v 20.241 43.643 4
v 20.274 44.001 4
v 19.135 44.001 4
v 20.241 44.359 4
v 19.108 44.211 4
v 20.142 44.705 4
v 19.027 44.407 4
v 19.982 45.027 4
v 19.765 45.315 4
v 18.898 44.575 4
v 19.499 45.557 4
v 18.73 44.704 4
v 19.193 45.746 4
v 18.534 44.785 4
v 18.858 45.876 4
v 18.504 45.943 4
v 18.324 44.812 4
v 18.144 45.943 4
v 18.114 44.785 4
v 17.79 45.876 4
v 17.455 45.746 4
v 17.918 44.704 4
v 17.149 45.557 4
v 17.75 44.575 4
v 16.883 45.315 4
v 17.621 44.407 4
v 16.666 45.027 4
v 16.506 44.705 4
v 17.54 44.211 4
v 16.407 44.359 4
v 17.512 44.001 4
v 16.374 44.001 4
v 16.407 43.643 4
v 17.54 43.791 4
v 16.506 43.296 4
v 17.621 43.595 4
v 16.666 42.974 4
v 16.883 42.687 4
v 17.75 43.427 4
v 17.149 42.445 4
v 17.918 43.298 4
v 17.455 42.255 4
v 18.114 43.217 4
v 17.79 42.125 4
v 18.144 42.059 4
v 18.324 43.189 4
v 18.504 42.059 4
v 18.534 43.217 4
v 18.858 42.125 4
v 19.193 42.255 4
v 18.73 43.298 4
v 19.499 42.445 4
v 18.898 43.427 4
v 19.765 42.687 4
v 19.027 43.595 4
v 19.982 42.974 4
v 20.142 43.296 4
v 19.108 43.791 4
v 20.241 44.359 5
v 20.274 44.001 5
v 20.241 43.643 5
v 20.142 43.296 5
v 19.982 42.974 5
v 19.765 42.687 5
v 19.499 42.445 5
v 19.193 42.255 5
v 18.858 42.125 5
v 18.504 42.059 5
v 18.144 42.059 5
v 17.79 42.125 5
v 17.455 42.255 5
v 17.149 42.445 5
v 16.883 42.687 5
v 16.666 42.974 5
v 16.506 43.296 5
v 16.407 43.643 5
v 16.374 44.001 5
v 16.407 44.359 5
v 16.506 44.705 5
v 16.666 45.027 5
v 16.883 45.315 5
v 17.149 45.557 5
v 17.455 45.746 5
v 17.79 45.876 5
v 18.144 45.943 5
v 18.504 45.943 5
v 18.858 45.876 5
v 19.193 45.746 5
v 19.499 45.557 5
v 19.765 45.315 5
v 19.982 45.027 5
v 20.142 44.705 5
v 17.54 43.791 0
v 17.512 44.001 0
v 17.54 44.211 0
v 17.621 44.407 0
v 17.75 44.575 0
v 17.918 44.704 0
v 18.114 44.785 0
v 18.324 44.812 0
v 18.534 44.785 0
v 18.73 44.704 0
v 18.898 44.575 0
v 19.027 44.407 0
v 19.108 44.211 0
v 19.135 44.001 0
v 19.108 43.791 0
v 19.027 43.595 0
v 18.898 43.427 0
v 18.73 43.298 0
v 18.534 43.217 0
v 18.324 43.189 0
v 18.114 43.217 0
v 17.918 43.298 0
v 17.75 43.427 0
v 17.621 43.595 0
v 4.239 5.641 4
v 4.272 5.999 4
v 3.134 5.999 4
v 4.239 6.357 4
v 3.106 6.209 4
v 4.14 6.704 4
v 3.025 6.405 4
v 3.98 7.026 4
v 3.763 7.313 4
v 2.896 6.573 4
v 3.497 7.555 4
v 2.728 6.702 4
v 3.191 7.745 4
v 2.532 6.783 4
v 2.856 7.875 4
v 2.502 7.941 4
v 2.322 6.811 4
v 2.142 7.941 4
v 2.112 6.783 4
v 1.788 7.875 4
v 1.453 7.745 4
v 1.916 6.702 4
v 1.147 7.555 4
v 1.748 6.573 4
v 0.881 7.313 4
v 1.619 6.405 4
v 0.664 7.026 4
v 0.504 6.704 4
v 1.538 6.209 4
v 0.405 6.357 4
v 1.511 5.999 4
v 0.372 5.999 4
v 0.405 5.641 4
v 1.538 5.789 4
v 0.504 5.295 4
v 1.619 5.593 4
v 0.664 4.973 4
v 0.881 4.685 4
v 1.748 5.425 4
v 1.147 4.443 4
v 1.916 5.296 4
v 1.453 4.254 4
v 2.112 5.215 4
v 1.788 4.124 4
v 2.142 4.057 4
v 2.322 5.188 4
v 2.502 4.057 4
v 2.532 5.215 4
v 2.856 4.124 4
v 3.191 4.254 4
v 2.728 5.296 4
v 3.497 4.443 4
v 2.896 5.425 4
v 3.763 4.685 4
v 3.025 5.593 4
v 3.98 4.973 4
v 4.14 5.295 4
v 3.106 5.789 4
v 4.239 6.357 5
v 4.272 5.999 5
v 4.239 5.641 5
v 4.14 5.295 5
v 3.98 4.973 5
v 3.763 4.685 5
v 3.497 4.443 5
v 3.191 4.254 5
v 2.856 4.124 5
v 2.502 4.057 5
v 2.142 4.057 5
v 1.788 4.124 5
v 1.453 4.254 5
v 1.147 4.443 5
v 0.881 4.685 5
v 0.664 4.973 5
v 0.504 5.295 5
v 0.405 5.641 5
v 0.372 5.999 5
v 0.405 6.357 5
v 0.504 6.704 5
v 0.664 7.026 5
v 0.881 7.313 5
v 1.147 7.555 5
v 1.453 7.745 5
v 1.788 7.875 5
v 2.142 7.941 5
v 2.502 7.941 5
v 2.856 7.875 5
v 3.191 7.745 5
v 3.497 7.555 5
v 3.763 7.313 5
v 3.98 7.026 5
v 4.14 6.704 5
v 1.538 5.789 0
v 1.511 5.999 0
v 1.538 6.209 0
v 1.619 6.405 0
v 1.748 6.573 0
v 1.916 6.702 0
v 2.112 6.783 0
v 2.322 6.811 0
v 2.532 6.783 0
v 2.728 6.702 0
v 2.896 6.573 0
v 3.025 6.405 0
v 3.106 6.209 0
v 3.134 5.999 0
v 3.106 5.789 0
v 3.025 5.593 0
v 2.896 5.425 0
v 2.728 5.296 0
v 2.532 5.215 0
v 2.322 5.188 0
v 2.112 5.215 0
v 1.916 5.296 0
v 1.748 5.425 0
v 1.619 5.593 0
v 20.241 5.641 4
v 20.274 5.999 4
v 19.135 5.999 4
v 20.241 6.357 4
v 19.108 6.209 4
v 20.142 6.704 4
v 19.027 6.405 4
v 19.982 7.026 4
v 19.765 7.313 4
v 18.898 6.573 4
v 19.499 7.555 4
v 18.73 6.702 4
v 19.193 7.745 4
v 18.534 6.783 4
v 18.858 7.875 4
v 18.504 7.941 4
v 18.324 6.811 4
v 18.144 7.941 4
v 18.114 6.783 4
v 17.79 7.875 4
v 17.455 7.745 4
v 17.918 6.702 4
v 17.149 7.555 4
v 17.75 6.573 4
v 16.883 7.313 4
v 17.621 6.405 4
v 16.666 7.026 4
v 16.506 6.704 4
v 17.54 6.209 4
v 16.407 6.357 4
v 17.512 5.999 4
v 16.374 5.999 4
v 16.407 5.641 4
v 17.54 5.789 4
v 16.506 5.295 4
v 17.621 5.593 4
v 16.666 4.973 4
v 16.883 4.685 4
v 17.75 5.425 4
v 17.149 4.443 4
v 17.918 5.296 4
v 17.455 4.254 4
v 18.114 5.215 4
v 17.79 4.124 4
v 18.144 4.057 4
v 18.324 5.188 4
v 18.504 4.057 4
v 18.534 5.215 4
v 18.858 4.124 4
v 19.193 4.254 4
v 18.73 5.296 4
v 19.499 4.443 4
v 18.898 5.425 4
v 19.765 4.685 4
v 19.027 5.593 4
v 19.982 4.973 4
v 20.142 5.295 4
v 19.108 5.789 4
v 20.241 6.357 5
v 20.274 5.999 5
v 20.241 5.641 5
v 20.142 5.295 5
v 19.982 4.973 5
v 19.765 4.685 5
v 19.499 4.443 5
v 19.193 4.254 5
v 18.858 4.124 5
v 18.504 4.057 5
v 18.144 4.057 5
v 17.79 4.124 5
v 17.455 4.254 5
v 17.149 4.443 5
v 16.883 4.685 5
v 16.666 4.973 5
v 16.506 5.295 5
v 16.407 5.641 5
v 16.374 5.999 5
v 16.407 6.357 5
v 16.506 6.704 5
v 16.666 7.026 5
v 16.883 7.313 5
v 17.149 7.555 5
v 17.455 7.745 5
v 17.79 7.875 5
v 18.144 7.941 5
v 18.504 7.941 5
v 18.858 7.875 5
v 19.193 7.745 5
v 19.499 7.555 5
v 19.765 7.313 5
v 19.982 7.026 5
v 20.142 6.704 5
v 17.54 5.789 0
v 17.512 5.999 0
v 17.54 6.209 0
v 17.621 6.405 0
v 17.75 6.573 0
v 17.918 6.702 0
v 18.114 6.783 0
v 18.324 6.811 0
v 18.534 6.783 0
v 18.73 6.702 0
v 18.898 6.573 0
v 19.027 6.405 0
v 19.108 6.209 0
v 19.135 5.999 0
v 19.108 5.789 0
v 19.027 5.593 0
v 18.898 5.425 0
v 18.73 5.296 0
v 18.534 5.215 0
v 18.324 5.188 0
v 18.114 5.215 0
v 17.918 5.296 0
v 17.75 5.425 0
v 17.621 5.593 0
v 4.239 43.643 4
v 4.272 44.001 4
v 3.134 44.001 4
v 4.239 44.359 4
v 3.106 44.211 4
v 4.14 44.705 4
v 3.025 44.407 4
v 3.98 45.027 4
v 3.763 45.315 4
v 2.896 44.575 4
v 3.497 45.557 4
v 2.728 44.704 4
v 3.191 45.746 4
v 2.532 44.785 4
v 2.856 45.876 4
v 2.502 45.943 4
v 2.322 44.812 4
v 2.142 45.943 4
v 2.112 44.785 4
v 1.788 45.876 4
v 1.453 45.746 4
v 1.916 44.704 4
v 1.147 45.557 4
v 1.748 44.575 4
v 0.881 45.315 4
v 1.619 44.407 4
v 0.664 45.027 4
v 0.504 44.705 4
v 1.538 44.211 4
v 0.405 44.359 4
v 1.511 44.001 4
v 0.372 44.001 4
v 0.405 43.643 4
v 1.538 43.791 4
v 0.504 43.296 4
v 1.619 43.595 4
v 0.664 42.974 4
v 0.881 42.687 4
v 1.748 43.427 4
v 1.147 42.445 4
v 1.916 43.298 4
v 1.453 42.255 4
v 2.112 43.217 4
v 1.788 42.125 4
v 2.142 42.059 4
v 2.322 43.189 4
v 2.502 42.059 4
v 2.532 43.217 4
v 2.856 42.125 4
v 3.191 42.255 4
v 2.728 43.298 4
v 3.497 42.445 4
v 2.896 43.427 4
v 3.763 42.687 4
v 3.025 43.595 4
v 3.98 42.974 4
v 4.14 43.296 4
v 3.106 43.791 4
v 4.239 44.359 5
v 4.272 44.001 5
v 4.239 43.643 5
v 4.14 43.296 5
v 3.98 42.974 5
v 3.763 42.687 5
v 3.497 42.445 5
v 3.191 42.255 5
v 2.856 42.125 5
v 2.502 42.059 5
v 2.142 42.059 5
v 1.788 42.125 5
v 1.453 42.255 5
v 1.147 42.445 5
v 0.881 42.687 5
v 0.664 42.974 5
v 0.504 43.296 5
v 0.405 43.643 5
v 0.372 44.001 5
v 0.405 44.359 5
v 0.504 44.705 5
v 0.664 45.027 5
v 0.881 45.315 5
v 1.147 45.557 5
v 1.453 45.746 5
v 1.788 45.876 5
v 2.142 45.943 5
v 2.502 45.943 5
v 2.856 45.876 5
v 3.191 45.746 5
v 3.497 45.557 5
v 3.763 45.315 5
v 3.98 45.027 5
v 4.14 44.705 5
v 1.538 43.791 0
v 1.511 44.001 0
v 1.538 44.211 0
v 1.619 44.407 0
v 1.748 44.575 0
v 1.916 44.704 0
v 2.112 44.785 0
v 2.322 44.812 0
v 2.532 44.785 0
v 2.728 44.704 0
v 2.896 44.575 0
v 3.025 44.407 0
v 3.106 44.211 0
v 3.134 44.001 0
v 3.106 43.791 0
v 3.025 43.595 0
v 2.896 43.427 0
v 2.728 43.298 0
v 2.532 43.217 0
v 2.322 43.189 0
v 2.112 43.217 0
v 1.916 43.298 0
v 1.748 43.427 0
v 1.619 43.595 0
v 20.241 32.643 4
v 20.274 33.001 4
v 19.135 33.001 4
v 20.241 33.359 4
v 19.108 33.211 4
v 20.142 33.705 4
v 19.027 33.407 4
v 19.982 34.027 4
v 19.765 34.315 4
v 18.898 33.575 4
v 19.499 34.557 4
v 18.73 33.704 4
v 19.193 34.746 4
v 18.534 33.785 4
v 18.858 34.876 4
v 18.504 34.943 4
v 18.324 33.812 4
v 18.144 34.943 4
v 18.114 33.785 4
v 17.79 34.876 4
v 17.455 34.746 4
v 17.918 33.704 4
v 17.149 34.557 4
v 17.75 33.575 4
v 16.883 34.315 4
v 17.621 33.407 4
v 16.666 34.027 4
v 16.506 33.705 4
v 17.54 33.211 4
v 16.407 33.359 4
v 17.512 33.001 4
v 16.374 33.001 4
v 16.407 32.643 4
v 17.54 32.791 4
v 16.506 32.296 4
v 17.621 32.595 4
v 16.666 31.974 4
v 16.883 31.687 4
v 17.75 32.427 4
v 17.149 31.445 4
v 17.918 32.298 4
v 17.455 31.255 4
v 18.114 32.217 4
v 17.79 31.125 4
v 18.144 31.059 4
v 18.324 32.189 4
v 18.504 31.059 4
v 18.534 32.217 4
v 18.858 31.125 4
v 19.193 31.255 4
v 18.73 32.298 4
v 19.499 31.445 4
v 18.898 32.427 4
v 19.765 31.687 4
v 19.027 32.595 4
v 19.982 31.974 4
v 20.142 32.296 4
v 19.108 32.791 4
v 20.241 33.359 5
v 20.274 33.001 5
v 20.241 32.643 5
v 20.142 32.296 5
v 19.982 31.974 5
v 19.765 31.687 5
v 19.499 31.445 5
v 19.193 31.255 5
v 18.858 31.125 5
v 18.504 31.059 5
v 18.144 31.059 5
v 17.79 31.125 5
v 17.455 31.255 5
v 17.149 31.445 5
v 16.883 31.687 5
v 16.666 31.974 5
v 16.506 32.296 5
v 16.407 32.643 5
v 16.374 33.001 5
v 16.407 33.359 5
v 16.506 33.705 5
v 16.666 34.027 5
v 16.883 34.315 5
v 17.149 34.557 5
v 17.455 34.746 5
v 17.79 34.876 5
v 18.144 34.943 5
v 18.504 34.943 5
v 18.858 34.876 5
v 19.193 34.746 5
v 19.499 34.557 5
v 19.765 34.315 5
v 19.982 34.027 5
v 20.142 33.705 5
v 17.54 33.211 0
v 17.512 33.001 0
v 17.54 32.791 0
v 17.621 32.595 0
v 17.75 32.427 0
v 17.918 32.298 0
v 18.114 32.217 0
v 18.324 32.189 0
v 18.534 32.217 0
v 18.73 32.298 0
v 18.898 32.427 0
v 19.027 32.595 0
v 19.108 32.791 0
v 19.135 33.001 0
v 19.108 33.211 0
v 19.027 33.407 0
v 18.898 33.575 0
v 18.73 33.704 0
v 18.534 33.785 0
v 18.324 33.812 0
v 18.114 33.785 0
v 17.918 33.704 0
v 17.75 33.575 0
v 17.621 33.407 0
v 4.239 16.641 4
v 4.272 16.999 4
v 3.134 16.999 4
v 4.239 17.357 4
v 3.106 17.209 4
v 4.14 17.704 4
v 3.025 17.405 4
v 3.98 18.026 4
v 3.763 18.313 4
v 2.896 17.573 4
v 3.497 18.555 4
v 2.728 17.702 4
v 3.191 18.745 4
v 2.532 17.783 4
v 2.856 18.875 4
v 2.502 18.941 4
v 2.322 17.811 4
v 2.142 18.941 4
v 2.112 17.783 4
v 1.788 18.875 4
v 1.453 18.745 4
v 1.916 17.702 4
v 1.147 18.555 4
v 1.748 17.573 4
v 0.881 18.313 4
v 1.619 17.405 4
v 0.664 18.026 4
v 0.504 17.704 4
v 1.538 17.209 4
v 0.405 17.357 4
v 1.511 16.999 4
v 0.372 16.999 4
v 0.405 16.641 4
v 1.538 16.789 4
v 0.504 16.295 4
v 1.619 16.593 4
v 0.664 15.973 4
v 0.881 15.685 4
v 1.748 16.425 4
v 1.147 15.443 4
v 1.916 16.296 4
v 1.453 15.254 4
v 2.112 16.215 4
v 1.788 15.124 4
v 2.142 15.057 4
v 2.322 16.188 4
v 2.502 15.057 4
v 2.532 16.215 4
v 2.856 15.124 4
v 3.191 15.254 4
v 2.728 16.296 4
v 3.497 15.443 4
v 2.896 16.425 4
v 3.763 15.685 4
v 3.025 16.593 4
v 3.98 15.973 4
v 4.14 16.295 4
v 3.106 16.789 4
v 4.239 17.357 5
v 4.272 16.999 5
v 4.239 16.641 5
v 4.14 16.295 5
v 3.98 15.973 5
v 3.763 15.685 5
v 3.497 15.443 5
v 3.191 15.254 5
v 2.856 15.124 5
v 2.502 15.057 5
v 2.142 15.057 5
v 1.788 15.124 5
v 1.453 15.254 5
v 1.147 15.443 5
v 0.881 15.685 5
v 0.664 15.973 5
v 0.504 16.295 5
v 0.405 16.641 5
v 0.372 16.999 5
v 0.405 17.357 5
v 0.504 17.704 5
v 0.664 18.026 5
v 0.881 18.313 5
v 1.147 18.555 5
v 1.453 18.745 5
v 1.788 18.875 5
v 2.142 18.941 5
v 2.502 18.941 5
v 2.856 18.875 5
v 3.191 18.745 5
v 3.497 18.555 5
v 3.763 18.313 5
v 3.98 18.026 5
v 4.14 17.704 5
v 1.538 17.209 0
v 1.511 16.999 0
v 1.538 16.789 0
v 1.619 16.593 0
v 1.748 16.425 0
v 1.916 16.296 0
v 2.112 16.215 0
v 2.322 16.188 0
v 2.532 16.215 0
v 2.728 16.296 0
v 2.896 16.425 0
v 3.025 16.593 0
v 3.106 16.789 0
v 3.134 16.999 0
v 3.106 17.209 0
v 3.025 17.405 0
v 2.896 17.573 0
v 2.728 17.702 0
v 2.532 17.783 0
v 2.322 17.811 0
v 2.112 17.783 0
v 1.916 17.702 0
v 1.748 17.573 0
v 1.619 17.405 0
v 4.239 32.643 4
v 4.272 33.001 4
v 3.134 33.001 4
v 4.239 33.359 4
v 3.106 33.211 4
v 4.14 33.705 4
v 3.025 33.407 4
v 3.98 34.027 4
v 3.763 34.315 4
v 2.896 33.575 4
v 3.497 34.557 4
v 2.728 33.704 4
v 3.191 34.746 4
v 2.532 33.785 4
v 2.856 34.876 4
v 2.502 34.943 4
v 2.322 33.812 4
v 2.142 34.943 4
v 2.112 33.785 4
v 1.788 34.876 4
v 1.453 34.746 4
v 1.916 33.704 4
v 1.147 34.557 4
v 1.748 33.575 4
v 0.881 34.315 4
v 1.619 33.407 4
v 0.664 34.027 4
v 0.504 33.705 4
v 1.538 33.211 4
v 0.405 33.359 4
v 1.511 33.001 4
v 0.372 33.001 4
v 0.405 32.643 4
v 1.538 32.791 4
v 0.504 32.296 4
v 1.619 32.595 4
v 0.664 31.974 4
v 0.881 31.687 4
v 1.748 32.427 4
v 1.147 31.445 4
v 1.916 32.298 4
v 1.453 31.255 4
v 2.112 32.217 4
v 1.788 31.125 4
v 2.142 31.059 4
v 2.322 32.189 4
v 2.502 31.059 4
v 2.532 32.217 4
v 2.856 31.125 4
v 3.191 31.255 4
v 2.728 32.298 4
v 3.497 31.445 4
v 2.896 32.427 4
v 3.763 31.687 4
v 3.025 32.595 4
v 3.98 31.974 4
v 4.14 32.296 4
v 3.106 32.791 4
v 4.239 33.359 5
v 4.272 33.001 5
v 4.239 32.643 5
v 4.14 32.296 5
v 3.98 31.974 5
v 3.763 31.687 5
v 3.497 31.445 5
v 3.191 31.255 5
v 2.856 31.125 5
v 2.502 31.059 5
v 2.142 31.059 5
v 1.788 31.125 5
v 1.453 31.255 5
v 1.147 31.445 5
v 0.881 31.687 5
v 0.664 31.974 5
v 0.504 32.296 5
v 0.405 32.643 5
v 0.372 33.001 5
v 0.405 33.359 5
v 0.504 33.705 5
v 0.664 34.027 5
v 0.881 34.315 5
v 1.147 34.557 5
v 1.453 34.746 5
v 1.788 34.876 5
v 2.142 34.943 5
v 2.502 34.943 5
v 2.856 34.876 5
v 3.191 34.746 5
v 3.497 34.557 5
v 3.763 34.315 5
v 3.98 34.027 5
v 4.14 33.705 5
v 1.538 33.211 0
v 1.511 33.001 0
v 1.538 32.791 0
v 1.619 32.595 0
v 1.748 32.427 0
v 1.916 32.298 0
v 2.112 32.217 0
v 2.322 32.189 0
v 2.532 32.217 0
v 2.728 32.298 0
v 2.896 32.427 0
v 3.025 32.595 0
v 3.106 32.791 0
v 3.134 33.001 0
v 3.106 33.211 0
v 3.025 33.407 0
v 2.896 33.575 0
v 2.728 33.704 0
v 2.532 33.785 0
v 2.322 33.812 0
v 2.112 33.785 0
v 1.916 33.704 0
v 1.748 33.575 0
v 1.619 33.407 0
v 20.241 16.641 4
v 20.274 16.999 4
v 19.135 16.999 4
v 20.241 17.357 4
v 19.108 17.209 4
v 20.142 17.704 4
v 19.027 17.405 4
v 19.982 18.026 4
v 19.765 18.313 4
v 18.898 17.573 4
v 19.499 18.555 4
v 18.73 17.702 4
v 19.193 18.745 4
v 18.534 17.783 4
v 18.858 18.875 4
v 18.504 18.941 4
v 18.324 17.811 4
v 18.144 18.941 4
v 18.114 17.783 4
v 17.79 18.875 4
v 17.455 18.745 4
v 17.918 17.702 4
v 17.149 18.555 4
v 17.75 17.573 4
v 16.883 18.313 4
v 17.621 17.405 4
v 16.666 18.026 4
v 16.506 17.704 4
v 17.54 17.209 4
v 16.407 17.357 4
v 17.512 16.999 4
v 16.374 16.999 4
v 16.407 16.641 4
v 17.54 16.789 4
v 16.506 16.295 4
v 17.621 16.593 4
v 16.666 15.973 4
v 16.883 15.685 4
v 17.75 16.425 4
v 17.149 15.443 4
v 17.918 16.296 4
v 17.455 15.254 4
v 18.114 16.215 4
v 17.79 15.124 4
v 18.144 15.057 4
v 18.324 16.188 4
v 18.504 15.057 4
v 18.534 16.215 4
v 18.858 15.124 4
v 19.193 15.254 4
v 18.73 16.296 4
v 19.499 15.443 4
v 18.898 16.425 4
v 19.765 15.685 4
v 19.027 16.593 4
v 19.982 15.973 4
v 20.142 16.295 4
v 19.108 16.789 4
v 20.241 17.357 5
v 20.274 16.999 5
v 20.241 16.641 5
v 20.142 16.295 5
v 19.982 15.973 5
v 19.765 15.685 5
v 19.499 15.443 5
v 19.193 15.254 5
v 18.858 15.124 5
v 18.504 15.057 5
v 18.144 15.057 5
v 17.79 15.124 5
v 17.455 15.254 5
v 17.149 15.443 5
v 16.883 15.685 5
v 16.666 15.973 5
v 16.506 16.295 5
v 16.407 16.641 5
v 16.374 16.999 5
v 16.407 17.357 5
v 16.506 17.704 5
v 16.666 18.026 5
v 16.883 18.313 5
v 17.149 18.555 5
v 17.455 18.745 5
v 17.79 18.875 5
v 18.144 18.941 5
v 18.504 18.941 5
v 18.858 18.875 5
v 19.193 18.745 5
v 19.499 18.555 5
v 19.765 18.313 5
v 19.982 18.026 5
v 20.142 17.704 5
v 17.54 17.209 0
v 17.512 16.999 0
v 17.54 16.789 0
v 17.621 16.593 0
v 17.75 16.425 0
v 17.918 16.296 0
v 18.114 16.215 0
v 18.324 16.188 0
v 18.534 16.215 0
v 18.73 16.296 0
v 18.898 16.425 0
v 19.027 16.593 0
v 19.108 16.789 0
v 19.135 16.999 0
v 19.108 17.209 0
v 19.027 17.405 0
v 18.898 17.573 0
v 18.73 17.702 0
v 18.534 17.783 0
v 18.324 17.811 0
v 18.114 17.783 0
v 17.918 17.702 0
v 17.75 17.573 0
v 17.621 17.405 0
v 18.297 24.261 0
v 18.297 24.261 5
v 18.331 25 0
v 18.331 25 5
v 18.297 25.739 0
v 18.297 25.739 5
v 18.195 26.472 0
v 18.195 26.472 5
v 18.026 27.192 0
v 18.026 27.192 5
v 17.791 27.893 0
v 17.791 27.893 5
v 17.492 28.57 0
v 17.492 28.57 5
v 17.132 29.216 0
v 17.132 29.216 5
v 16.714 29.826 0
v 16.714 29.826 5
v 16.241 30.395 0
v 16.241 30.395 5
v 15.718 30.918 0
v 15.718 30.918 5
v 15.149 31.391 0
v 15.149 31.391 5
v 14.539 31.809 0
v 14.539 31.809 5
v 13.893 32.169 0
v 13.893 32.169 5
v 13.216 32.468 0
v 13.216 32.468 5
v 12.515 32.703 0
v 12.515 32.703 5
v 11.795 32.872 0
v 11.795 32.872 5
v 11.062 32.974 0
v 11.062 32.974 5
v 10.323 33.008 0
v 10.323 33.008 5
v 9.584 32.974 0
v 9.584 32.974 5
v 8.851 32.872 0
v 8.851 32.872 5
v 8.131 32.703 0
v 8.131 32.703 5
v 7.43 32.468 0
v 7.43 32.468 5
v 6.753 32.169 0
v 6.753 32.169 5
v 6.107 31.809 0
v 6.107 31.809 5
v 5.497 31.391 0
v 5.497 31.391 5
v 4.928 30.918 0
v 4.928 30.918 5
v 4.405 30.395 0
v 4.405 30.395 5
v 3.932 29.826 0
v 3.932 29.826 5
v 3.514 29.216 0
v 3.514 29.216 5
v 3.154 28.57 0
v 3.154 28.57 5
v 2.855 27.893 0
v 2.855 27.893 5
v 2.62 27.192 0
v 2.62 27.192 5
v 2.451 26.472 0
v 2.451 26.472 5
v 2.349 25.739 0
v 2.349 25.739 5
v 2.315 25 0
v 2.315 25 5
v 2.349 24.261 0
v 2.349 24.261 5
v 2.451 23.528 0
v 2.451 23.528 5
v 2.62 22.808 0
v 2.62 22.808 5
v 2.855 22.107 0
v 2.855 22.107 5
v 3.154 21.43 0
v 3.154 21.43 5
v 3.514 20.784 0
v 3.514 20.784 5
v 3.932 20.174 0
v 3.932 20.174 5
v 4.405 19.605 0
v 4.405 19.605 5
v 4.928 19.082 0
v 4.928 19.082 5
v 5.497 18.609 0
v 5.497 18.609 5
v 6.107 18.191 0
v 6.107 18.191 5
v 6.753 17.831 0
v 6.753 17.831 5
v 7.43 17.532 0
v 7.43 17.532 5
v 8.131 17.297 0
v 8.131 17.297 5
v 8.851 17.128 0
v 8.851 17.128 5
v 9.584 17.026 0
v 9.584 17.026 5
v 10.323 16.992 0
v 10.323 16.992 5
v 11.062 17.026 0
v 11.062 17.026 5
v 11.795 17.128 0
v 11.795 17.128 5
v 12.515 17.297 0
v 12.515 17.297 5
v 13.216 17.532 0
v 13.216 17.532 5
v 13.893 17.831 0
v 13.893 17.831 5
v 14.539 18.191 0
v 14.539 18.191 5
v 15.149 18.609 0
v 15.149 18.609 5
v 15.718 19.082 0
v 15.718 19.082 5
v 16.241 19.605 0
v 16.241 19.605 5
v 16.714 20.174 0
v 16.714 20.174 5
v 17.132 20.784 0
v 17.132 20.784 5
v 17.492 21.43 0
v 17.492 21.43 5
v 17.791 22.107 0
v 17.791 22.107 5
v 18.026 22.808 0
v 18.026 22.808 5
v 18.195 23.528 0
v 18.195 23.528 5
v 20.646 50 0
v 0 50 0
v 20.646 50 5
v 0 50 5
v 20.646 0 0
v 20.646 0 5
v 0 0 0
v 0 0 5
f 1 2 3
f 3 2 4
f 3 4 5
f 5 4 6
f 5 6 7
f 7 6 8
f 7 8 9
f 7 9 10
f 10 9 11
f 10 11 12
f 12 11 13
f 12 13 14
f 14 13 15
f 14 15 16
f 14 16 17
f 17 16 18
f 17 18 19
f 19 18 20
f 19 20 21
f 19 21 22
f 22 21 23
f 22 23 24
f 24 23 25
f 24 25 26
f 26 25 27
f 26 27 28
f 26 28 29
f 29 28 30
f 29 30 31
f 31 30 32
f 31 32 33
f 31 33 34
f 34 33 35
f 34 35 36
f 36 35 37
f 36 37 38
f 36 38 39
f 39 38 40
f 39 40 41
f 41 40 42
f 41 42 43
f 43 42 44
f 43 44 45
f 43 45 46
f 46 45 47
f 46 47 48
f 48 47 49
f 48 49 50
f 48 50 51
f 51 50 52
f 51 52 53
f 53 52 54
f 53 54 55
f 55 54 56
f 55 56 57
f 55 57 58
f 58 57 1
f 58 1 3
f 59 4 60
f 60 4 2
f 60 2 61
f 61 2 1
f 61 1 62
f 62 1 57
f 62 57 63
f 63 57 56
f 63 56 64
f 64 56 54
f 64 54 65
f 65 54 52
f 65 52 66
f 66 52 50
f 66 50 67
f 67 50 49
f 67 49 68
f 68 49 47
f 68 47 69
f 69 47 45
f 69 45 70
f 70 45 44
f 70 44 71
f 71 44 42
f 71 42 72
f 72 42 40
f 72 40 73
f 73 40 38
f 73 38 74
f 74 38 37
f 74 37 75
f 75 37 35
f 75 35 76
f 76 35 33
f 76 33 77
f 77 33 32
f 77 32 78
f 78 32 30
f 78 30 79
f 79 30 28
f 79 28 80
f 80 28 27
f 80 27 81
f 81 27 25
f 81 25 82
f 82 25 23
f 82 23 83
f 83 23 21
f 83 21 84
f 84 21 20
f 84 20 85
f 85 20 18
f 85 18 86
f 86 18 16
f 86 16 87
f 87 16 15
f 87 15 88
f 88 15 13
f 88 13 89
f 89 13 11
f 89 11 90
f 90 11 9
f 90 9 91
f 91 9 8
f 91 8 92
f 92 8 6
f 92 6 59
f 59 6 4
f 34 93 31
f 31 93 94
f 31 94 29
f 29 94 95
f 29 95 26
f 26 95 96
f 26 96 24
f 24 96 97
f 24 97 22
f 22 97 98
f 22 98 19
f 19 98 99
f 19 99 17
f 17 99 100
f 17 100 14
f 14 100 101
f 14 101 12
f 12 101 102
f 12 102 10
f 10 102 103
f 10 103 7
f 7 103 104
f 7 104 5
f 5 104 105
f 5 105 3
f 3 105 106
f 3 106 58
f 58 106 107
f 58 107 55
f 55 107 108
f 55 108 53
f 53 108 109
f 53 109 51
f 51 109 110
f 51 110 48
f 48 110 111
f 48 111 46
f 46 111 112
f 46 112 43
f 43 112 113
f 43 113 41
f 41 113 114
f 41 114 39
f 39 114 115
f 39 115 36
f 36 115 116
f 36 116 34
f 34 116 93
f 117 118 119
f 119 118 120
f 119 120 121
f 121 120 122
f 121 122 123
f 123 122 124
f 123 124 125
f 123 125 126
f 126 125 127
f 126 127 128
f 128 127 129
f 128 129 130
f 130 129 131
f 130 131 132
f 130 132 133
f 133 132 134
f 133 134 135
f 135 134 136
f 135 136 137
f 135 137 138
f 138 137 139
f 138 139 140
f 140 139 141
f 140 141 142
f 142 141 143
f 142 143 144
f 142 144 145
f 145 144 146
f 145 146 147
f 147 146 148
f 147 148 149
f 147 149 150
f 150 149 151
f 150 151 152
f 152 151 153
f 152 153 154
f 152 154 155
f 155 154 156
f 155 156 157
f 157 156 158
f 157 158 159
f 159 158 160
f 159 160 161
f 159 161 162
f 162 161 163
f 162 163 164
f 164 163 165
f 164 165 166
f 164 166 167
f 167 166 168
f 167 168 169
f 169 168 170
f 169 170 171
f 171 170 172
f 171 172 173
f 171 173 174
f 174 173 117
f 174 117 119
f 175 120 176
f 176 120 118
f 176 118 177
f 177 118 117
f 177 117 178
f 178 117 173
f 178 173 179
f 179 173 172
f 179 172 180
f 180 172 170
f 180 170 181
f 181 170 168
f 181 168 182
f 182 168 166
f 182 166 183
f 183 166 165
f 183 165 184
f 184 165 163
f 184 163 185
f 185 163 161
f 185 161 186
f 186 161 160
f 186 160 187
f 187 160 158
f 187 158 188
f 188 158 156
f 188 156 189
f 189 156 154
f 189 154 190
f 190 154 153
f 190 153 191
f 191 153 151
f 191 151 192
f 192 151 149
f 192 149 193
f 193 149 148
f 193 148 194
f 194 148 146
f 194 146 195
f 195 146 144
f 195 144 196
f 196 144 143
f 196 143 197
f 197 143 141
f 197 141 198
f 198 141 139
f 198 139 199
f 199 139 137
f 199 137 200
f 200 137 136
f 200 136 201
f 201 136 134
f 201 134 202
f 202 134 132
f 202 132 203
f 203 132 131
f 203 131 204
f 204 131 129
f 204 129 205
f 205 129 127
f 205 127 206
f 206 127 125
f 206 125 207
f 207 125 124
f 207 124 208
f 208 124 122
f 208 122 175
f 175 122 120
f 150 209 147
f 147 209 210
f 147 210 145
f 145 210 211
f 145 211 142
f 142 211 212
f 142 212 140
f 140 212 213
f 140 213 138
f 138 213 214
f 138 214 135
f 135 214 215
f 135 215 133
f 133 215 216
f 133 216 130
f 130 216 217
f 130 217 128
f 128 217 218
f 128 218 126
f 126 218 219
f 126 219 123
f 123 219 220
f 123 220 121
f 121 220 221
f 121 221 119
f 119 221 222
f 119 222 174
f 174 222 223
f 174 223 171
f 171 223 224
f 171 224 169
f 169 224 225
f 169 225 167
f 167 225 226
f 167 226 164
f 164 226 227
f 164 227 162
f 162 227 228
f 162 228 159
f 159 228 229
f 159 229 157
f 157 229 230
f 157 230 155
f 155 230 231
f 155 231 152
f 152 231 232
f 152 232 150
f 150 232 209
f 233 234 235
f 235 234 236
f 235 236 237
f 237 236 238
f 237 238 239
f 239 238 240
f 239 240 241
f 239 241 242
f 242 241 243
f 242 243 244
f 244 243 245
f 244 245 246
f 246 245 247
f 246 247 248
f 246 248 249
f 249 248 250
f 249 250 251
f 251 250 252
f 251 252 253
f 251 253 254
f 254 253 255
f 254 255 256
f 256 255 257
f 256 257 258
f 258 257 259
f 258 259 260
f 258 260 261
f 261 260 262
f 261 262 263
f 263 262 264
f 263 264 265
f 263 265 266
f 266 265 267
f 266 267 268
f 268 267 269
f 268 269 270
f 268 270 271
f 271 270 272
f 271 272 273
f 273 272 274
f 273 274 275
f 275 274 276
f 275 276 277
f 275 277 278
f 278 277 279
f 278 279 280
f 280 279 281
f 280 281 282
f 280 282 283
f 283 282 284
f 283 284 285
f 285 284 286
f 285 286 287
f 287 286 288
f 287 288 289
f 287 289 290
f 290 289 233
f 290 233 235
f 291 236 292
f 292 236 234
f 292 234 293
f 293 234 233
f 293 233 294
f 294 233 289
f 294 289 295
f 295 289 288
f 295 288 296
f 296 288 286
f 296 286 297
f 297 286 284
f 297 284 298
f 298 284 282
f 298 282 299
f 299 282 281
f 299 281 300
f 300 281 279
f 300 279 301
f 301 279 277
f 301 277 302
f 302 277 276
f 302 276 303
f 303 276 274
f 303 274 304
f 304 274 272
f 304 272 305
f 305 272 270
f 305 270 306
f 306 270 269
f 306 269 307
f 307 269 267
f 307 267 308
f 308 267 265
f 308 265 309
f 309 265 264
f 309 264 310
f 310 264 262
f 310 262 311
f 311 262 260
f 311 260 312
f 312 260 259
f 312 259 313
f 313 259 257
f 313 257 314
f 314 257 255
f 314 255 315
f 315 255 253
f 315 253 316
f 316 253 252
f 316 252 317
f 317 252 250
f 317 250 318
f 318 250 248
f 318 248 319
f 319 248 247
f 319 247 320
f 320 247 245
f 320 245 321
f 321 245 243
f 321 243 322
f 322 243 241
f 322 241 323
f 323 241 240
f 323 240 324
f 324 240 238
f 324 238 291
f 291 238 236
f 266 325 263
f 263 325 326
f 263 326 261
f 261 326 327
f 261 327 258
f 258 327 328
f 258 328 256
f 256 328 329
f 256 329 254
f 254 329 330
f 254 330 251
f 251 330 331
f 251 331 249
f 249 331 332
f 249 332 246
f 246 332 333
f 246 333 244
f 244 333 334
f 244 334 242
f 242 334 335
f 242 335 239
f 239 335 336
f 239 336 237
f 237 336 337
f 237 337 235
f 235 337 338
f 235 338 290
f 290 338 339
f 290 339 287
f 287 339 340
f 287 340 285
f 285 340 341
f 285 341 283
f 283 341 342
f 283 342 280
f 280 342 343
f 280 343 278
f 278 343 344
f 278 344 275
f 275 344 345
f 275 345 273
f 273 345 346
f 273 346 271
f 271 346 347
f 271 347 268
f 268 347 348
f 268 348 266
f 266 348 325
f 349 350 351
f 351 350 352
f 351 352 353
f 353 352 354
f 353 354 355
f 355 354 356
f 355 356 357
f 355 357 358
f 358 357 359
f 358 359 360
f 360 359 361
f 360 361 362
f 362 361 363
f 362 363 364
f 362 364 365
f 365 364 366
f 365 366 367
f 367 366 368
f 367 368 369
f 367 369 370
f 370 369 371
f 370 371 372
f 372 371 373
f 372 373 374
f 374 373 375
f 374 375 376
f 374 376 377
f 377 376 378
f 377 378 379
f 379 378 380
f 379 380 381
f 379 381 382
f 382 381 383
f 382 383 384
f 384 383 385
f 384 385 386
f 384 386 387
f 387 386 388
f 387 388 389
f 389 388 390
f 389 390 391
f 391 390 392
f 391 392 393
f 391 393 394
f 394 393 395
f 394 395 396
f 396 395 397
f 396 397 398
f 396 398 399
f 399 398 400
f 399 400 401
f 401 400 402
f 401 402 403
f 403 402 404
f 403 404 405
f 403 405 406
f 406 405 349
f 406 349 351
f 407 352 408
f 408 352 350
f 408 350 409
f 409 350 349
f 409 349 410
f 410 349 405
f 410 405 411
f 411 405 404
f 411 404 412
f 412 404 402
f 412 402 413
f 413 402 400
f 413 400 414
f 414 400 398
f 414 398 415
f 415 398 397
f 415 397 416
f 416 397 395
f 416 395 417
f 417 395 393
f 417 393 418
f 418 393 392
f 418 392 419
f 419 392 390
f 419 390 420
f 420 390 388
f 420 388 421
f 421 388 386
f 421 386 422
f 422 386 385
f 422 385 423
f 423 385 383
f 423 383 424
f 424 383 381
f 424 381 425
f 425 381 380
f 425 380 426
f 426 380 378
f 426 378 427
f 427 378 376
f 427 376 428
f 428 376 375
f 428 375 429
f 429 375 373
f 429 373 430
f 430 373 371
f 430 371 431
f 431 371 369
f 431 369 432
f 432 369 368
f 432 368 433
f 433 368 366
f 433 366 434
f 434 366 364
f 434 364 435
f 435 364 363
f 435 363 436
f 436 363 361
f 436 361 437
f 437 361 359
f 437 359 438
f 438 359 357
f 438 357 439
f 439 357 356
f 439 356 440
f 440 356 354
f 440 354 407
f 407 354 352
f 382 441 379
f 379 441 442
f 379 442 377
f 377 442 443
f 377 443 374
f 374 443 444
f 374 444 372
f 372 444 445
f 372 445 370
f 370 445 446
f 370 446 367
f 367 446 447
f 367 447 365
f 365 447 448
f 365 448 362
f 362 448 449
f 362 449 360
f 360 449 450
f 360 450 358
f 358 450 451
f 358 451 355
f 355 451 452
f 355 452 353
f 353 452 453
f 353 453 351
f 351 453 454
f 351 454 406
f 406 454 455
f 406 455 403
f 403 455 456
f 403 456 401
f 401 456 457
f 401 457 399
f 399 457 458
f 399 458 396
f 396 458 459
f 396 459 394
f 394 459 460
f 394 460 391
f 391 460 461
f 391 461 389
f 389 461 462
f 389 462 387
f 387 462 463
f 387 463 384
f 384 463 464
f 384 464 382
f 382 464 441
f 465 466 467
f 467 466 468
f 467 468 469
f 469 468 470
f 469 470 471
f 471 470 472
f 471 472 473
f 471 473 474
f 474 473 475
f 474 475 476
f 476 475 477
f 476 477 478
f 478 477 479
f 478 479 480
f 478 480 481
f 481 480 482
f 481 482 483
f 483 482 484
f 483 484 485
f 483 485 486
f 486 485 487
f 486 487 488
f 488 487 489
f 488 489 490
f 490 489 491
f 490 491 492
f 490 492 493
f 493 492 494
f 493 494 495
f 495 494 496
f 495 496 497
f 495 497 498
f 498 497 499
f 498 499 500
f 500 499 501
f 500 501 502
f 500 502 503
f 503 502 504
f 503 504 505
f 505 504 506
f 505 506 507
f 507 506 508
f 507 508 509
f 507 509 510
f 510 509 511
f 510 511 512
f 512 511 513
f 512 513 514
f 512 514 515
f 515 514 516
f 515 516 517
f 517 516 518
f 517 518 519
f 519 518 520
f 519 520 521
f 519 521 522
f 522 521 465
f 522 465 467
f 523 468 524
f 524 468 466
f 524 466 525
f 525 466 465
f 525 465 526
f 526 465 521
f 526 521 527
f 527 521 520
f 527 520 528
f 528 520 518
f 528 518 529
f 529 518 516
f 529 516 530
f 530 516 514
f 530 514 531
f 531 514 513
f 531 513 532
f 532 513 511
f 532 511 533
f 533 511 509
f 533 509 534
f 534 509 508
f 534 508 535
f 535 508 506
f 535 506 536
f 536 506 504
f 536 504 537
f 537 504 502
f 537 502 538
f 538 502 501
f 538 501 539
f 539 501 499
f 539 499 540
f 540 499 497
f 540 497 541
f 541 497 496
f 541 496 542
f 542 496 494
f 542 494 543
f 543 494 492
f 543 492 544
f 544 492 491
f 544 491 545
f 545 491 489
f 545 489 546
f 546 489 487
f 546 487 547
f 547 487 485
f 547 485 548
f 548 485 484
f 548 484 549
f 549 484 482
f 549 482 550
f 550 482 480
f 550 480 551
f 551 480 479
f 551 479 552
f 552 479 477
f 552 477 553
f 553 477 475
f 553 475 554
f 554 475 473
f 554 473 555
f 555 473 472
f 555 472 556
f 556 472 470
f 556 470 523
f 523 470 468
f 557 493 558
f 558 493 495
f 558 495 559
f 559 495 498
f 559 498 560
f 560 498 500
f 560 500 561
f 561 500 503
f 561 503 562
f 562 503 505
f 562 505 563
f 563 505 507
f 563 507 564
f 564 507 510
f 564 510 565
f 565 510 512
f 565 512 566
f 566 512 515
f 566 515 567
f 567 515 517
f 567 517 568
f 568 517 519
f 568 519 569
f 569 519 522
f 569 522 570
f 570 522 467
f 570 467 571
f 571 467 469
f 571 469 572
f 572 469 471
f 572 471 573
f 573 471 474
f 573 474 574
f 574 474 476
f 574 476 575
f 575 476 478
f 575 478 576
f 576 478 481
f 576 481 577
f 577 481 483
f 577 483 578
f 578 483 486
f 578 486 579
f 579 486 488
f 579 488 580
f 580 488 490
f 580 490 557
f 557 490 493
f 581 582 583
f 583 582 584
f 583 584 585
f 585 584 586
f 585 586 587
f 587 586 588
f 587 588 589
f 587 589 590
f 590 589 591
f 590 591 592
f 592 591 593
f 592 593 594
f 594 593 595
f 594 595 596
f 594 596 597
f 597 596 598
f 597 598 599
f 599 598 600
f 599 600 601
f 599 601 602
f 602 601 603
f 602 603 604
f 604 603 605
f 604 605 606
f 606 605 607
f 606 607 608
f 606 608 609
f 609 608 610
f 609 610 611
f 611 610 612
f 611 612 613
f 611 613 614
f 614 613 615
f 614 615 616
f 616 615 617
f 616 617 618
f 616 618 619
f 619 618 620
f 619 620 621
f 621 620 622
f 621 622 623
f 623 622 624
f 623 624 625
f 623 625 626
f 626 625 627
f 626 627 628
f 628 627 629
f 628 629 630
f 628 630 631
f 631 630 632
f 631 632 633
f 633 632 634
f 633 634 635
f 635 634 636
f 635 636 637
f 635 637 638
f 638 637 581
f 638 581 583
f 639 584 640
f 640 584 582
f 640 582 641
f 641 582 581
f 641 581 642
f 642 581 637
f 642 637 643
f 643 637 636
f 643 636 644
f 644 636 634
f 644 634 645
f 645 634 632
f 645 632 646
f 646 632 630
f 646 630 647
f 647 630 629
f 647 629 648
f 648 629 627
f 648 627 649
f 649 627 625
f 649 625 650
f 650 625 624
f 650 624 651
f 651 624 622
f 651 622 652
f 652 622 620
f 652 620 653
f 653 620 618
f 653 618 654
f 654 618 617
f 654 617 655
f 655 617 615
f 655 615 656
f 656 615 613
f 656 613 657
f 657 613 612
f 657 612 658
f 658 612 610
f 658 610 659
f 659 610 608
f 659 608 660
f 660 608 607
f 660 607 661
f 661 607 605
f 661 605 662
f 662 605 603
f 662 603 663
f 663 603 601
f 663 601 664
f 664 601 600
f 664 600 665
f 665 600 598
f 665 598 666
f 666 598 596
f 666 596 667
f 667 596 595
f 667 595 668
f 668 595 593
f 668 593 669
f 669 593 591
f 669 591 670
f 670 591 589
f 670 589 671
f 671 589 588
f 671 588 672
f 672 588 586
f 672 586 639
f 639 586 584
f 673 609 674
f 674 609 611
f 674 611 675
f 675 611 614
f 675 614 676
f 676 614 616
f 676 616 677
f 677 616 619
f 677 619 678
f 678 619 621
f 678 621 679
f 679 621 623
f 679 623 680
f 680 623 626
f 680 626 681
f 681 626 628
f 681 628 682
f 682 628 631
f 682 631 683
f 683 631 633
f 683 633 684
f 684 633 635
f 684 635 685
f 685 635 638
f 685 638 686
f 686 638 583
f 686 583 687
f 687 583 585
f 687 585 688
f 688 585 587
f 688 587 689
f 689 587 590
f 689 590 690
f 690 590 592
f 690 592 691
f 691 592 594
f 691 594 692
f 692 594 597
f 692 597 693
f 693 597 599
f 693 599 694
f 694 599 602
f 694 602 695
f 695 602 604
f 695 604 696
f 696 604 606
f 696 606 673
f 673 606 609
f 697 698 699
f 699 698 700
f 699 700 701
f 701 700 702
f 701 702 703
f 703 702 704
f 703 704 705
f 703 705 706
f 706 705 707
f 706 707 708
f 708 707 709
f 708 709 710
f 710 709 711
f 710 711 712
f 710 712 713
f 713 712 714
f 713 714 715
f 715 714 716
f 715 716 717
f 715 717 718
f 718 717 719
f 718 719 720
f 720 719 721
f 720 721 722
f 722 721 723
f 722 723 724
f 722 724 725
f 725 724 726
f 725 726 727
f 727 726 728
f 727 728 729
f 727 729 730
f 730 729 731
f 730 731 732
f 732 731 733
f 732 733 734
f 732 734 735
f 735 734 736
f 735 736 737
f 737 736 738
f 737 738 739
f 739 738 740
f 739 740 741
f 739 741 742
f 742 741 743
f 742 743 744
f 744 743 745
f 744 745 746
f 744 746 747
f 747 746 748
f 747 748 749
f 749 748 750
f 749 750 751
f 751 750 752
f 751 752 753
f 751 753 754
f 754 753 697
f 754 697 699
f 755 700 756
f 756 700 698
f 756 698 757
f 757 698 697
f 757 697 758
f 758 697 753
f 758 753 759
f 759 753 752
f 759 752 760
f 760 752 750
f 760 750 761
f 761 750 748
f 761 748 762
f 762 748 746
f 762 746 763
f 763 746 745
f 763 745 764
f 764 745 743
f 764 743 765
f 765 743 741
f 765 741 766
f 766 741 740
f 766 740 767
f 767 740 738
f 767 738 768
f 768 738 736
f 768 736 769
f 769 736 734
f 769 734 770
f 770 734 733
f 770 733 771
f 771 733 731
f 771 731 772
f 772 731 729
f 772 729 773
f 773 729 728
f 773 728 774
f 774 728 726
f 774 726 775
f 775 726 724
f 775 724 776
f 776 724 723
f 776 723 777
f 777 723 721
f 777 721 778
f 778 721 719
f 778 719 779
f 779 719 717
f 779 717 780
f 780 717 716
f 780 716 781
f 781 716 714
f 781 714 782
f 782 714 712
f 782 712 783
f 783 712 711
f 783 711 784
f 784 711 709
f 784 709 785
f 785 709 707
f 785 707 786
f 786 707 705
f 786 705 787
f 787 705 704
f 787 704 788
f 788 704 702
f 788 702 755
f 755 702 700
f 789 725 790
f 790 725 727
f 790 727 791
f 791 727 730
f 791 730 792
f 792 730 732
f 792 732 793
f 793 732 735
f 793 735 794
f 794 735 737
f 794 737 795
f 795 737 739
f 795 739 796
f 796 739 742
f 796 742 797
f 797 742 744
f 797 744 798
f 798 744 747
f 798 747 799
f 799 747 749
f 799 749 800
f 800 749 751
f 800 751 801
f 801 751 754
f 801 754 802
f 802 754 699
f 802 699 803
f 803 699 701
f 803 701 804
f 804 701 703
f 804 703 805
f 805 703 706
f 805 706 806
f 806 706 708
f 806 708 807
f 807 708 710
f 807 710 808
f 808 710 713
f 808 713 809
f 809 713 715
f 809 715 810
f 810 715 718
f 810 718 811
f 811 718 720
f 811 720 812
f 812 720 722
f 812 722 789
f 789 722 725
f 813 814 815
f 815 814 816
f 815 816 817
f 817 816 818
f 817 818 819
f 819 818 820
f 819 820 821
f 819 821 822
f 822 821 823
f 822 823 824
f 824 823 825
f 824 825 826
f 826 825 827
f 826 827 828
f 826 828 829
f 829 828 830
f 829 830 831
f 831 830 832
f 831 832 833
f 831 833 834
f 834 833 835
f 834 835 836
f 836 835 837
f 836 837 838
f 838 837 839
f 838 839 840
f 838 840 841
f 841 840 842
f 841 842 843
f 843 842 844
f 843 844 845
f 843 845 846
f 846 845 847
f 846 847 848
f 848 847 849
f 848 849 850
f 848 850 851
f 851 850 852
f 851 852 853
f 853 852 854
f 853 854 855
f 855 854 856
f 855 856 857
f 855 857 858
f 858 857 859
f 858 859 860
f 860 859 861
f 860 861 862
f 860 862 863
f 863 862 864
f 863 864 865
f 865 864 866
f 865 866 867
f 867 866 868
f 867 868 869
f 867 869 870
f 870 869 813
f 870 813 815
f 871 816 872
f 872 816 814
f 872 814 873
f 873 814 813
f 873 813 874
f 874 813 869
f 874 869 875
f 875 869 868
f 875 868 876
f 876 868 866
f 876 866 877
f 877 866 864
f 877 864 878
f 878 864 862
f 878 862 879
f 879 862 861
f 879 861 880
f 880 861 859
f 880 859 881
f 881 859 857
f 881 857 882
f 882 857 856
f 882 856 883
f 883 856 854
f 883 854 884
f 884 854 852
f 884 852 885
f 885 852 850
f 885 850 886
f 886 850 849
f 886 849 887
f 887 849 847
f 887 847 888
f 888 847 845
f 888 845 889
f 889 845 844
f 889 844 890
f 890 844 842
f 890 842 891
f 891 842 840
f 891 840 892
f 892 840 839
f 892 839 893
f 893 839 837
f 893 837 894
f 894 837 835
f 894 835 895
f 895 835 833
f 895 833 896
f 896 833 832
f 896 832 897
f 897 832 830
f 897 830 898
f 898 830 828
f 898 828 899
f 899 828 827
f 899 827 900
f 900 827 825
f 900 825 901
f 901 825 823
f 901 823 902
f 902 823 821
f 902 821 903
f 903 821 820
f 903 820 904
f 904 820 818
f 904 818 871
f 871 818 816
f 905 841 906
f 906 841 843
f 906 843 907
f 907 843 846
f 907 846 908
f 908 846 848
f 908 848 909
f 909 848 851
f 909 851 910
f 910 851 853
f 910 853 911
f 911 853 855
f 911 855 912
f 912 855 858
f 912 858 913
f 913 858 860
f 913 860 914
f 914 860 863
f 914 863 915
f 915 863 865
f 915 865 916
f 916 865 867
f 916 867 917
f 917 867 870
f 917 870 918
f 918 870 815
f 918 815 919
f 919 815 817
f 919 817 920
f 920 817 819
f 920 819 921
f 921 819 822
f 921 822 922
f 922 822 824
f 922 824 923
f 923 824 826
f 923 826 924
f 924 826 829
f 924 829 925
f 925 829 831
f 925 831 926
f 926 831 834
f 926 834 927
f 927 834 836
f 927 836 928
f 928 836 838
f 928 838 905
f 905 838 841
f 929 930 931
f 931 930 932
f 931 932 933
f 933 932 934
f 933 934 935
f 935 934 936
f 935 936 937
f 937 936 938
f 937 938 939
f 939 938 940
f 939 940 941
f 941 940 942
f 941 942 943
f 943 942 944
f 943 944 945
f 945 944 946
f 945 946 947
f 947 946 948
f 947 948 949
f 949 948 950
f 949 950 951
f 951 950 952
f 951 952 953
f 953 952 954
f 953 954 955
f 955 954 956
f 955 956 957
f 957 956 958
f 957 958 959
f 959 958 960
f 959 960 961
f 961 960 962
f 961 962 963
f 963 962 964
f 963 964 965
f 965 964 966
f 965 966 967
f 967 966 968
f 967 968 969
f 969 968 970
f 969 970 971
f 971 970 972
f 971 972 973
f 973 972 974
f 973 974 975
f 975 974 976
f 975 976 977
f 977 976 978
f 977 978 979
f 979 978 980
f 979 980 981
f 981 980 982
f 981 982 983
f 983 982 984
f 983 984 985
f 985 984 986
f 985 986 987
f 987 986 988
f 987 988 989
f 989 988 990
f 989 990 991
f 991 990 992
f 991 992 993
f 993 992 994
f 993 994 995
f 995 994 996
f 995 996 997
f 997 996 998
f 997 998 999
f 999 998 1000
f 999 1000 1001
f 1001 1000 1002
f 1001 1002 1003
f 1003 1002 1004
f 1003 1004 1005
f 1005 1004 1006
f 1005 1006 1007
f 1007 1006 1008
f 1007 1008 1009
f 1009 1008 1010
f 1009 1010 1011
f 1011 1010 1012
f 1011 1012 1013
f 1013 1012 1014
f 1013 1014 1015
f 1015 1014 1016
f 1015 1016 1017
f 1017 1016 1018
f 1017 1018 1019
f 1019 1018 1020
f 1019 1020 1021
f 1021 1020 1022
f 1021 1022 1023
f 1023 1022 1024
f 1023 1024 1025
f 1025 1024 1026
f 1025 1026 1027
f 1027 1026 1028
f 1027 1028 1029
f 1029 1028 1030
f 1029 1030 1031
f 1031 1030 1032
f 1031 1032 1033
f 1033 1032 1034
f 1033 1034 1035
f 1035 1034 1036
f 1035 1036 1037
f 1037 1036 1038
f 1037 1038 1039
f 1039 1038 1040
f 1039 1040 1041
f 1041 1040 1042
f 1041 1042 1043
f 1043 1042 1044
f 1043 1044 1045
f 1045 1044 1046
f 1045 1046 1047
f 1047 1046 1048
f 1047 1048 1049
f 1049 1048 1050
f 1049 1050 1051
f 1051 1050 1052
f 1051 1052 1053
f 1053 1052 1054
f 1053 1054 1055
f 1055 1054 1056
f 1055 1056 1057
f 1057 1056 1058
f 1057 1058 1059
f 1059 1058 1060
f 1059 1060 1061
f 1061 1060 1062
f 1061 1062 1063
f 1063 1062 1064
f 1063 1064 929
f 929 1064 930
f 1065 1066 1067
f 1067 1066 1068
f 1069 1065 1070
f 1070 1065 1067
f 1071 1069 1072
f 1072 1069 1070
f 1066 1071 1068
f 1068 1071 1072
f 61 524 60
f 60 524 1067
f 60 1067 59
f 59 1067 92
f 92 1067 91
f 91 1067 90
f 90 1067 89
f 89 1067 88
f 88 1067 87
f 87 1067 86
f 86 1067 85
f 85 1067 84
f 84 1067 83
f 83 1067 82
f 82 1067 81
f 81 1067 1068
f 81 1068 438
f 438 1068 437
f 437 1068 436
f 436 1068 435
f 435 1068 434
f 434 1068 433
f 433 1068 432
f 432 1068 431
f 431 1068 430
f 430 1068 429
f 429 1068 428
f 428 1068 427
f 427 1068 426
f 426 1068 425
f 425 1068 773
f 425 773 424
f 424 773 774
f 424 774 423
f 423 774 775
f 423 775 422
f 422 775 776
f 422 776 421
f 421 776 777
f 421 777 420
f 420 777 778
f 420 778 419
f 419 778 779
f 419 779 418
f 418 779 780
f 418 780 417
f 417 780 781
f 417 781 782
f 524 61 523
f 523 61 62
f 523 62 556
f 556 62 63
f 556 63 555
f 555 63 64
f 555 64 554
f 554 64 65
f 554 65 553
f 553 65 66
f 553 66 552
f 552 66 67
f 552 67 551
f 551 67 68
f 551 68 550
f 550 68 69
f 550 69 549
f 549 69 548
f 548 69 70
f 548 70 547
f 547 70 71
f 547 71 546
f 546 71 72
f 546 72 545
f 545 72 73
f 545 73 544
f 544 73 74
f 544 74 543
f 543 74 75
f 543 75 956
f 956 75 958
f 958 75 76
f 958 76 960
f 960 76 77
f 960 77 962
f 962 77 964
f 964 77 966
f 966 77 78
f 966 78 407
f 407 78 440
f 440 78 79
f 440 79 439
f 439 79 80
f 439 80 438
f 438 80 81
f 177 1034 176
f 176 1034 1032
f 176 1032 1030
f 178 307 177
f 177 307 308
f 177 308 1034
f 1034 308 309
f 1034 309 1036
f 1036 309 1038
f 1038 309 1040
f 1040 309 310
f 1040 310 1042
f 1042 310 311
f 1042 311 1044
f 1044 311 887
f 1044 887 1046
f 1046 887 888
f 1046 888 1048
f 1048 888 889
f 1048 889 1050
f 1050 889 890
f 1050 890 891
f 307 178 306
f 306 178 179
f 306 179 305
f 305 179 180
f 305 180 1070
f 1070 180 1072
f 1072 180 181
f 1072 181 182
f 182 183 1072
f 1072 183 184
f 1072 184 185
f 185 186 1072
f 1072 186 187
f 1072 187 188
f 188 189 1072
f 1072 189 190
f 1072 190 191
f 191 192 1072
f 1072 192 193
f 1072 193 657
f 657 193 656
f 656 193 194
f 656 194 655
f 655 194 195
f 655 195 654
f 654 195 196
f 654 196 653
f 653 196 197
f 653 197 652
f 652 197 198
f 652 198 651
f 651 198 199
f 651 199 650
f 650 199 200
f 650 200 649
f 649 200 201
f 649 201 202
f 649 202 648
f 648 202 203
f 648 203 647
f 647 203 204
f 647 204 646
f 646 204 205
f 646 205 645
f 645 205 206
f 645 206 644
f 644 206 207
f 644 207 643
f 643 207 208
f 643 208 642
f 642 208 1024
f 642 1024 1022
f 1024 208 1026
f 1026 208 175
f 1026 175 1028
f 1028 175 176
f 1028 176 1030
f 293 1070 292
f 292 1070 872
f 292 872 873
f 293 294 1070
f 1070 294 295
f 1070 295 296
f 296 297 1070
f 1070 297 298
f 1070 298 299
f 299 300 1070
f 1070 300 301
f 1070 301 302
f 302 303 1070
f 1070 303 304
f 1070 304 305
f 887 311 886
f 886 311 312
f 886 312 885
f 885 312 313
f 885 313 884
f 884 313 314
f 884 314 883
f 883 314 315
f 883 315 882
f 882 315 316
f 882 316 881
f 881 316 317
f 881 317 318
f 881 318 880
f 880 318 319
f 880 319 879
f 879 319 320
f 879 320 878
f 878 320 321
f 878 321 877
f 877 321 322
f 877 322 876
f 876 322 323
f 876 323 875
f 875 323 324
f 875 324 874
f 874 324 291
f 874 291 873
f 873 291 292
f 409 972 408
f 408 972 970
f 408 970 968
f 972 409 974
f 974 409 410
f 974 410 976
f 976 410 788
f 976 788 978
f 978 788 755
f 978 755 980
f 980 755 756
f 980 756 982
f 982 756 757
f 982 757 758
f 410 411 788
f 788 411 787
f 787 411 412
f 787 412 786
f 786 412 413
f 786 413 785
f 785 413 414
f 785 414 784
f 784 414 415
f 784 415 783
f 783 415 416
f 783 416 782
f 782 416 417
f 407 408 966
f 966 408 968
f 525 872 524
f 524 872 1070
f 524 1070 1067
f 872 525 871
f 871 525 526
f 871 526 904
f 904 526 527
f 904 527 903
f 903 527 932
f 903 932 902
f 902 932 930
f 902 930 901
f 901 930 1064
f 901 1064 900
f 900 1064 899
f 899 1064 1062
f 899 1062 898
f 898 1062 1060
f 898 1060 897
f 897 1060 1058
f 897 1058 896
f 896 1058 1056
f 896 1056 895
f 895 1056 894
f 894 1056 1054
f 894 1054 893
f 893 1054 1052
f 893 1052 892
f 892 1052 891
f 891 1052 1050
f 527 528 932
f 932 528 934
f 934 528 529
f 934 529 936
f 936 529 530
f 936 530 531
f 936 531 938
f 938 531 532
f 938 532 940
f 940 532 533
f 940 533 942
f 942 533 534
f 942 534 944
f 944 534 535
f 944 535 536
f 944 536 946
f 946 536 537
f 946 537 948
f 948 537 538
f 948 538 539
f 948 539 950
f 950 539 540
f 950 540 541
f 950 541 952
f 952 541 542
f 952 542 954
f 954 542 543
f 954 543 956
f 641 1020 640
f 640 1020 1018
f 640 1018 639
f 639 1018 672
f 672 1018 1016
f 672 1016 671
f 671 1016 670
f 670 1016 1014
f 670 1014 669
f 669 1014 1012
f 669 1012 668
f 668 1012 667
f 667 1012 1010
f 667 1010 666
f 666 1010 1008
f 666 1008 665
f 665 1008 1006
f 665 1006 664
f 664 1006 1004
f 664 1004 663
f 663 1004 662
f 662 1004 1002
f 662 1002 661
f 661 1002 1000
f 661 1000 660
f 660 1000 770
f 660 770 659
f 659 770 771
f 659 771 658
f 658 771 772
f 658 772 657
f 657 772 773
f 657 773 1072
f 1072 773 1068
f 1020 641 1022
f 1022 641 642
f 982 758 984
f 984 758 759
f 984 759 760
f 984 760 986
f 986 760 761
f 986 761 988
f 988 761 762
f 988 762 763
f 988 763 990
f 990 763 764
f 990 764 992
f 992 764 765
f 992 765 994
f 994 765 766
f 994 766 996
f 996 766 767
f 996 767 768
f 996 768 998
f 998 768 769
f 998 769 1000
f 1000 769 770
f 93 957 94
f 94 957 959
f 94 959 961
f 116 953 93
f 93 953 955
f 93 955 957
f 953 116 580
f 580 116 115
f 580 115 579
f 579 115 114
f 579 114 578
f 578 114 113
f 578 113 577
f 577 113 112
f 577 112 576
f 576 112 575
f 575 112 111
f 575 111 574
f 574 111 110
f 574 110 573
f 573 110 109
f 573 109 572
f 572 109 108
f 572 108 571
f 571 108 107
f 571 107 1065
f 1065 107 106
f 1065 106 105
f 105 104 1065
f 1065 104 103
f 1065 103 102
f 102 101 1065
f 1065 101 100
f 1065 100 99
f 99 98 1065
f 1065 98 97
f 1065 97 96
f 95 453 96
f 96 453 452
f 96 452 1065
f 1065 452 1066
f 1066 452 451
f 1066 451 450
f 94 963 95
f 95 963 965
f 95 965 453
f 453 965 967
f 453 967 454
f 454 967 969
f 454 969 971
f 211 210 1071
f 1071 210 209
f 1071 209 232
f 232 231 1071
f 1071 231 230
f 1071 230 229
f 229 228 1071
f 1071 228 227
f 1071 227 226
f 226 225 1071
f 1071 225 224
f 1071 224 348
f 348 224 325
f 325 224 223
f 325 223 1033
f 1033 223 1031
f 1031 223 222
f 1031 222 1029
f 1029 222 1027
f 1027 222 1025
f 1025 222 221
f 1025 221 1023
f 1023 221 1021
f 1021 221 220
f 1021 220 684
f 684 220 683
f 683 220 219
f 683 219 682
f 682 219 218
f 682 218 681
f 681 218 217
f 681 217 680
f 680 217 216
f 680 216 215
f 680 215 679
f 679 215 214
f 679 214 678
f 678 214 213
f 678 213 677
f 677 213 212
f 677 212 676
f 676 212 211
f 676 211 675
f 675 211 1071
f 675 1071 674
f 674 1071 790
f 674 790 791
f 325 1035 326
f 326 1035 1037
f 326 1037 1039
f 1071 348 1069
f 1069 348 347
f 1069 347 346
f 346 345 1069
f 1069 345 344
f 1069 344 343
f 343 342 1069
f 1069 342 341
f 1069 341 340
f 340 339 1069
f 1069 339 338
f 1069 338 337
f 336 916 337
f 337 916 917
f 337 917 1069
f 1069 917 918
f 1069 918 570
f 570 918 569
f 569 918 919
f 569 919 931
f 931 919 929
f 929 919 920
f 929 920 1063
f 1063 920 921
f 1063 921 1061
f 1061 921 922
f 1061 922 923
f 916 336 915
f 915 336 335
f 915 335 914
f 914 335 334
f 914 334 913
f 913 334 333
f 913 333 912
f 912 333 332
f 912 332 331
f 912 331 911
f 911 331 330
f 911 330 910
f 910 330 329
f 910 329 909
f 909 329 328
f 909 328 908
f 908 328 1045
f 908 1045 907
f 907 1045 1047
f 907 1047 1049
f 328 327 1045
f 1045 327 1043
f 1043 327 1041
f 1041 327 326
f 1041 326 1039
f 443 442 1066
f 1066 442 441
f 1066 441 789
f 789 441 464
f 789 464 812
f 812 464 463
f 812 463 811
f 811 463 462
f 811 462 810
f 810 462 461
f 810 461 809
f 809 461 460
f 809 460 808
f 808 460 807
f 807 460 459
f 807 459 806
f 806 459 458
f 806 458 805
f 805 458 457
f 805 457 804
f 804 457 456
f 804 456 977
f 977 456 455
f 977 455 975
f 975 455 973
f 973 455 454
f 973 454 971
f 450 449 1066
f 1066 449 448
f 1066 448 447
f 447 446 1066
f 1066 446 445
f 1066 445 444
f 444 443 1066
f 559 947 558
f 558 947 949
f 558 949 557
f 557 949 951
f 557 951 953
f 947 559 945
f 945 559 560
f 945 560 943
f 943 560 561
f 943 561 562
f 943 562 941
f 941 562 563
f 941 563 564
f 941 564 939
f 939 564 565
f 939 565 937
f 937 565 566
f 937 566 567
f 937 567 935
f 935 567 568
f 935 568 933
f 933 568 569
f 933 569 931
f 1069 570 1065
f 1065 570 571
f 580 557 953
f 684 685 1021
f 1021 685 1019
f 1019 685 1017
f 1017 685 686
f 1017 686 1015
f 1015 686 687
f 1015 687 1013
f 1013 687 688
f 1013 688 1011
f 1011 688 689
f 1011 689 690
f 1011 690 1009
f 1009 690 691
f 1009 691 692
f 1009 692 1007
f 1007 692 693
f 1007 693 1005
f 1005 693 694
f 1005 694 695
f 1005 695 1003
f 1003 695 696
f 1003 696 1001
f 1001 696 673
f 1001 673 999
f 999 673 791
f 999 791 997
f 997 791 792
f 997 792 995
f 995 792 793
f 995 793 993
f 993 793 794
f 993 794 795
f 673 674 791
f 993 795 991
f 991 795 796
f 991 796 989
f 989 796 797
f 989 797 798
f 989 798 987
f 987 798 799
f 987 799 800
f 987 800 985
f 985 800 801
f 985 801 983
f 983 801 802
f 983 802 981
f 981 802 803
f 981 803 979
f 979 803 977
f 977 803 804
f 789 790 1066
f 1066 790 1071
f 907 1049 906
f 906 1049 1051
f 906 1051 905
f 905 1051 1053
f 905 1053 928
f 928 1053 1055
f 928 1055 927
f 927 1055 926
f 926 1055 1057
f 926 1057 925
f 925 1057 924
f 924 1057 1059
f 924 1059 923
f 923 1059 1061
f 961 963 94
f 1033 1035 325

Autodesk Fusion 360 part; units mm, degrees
sketch "Sketch1" plane through (0, 0, 0) normal (0, 0, 1) x (1, 0, 0)
  line L0 (0, 0) -> (20.646, 0)
  line L1 (20.646, 0) -> (20.646, 50)
  line L2 (20.646, 50) -> (0, 50)
  line L3 (0, 50) -> (0, 0)
  dimension "d1" = 20.646
  dimension "d2" = 50
extrude "Extrude1" add sketch "Sketch1" along normal blind 5
sketch "Sketch2" plane through (0, 0, 5) normal (0, 0, 1) x (-1, 0, 0)
  line L0 (0, -50) -> (0, 0)
  line L1 (0, 0) -> (-20.646, 0)
  line L2 (-20.646, 0) -> (-20.646, -50)
  line L3 (-20.646, -50) -> (0, -50)
sketch "Sketch3" plane through (0, 0, 5) normal (0, 0, 1) x (-1, 0, 0)
  line L0 (-20.646, 0) -> (-20.646, -50)
  line L1 (0, -50) -> (0, 0)
  circle A0 centre (-10.323, -25) radius 8.0085
  dimension "d5" = 16.017
extrude "Extrude2" cut sketch "Sketch3" against normal blind 10
sketch "Sketch4" plane through (0, 0, 5) normal (0, 0, 1) x (-1, 0, 0)
  circle A0 centre (-10.323, -25) radius 8.0085
  line L0 (-10.323, -25) -> (-2.3221, -33.0009)
  line L1 (-10.323, -25) -> (-2.3221, -16.9991)
  line L2 (-10.323, -25) -> (-18.3239, -16.9991)
  line L3 (-10.323, -25) -> (-18.3239, -33.0009)
hole "Hole1" at (2.3221, 16.9991, 5) at (2.3221, 33.0009, 5) at (18.3239, 33.0009, 5) at (18.3239, 16.9991, 5) direction (0, 0, -1) diameter 1.623 depth 16 tip angle 180 counterbore diameter 3.9 counterbore depth 1
sketch "Sketch5" plane through (0, 0, 5) normal (0, 0, 1) x (-1, 0, 0)
  circle A0 centre (-2.3221, -33.0009) radius 1.95
  line L0 (-2.3221, -33.0009) -> (-2.3221, -44.0009)
  circle A1 centre (-18.3239, -33.0009) radius 1.95
  line L1 (-18.3239, -33.0009) -> (-18.3239, -44.0009)
  circle A2 centre (-2.3221, -16.9991) radius 1.95
  line L2 (-2.3221, -16.9991) -> (-2.3221, -5.9991)
  circle A3 centre (-18.3239, -16.9991) radius 1.95
  line L3 (-18.3239, -16.9991) -> (-18.3239, -5.9991)
  dimension "d16" = 11
  dimension "d17" = 11
  dimension "d18" = 11
  dimension "d19" = 11
hole "Hole2" at (2.3221, 5.9991, 5) at (18.3239, 5.9991, 5) at (18.3239, 44.0009, 5) at (2.3221, 44.0009, 5) direction (0, 0, -1) diameter 1.623 end through all counterbore diameter 3.9 counterbore depth 1
sketch "Sketch6" plane through (0, 0, 5) normal (0, 0, 1) x (-1, 0, 0)
